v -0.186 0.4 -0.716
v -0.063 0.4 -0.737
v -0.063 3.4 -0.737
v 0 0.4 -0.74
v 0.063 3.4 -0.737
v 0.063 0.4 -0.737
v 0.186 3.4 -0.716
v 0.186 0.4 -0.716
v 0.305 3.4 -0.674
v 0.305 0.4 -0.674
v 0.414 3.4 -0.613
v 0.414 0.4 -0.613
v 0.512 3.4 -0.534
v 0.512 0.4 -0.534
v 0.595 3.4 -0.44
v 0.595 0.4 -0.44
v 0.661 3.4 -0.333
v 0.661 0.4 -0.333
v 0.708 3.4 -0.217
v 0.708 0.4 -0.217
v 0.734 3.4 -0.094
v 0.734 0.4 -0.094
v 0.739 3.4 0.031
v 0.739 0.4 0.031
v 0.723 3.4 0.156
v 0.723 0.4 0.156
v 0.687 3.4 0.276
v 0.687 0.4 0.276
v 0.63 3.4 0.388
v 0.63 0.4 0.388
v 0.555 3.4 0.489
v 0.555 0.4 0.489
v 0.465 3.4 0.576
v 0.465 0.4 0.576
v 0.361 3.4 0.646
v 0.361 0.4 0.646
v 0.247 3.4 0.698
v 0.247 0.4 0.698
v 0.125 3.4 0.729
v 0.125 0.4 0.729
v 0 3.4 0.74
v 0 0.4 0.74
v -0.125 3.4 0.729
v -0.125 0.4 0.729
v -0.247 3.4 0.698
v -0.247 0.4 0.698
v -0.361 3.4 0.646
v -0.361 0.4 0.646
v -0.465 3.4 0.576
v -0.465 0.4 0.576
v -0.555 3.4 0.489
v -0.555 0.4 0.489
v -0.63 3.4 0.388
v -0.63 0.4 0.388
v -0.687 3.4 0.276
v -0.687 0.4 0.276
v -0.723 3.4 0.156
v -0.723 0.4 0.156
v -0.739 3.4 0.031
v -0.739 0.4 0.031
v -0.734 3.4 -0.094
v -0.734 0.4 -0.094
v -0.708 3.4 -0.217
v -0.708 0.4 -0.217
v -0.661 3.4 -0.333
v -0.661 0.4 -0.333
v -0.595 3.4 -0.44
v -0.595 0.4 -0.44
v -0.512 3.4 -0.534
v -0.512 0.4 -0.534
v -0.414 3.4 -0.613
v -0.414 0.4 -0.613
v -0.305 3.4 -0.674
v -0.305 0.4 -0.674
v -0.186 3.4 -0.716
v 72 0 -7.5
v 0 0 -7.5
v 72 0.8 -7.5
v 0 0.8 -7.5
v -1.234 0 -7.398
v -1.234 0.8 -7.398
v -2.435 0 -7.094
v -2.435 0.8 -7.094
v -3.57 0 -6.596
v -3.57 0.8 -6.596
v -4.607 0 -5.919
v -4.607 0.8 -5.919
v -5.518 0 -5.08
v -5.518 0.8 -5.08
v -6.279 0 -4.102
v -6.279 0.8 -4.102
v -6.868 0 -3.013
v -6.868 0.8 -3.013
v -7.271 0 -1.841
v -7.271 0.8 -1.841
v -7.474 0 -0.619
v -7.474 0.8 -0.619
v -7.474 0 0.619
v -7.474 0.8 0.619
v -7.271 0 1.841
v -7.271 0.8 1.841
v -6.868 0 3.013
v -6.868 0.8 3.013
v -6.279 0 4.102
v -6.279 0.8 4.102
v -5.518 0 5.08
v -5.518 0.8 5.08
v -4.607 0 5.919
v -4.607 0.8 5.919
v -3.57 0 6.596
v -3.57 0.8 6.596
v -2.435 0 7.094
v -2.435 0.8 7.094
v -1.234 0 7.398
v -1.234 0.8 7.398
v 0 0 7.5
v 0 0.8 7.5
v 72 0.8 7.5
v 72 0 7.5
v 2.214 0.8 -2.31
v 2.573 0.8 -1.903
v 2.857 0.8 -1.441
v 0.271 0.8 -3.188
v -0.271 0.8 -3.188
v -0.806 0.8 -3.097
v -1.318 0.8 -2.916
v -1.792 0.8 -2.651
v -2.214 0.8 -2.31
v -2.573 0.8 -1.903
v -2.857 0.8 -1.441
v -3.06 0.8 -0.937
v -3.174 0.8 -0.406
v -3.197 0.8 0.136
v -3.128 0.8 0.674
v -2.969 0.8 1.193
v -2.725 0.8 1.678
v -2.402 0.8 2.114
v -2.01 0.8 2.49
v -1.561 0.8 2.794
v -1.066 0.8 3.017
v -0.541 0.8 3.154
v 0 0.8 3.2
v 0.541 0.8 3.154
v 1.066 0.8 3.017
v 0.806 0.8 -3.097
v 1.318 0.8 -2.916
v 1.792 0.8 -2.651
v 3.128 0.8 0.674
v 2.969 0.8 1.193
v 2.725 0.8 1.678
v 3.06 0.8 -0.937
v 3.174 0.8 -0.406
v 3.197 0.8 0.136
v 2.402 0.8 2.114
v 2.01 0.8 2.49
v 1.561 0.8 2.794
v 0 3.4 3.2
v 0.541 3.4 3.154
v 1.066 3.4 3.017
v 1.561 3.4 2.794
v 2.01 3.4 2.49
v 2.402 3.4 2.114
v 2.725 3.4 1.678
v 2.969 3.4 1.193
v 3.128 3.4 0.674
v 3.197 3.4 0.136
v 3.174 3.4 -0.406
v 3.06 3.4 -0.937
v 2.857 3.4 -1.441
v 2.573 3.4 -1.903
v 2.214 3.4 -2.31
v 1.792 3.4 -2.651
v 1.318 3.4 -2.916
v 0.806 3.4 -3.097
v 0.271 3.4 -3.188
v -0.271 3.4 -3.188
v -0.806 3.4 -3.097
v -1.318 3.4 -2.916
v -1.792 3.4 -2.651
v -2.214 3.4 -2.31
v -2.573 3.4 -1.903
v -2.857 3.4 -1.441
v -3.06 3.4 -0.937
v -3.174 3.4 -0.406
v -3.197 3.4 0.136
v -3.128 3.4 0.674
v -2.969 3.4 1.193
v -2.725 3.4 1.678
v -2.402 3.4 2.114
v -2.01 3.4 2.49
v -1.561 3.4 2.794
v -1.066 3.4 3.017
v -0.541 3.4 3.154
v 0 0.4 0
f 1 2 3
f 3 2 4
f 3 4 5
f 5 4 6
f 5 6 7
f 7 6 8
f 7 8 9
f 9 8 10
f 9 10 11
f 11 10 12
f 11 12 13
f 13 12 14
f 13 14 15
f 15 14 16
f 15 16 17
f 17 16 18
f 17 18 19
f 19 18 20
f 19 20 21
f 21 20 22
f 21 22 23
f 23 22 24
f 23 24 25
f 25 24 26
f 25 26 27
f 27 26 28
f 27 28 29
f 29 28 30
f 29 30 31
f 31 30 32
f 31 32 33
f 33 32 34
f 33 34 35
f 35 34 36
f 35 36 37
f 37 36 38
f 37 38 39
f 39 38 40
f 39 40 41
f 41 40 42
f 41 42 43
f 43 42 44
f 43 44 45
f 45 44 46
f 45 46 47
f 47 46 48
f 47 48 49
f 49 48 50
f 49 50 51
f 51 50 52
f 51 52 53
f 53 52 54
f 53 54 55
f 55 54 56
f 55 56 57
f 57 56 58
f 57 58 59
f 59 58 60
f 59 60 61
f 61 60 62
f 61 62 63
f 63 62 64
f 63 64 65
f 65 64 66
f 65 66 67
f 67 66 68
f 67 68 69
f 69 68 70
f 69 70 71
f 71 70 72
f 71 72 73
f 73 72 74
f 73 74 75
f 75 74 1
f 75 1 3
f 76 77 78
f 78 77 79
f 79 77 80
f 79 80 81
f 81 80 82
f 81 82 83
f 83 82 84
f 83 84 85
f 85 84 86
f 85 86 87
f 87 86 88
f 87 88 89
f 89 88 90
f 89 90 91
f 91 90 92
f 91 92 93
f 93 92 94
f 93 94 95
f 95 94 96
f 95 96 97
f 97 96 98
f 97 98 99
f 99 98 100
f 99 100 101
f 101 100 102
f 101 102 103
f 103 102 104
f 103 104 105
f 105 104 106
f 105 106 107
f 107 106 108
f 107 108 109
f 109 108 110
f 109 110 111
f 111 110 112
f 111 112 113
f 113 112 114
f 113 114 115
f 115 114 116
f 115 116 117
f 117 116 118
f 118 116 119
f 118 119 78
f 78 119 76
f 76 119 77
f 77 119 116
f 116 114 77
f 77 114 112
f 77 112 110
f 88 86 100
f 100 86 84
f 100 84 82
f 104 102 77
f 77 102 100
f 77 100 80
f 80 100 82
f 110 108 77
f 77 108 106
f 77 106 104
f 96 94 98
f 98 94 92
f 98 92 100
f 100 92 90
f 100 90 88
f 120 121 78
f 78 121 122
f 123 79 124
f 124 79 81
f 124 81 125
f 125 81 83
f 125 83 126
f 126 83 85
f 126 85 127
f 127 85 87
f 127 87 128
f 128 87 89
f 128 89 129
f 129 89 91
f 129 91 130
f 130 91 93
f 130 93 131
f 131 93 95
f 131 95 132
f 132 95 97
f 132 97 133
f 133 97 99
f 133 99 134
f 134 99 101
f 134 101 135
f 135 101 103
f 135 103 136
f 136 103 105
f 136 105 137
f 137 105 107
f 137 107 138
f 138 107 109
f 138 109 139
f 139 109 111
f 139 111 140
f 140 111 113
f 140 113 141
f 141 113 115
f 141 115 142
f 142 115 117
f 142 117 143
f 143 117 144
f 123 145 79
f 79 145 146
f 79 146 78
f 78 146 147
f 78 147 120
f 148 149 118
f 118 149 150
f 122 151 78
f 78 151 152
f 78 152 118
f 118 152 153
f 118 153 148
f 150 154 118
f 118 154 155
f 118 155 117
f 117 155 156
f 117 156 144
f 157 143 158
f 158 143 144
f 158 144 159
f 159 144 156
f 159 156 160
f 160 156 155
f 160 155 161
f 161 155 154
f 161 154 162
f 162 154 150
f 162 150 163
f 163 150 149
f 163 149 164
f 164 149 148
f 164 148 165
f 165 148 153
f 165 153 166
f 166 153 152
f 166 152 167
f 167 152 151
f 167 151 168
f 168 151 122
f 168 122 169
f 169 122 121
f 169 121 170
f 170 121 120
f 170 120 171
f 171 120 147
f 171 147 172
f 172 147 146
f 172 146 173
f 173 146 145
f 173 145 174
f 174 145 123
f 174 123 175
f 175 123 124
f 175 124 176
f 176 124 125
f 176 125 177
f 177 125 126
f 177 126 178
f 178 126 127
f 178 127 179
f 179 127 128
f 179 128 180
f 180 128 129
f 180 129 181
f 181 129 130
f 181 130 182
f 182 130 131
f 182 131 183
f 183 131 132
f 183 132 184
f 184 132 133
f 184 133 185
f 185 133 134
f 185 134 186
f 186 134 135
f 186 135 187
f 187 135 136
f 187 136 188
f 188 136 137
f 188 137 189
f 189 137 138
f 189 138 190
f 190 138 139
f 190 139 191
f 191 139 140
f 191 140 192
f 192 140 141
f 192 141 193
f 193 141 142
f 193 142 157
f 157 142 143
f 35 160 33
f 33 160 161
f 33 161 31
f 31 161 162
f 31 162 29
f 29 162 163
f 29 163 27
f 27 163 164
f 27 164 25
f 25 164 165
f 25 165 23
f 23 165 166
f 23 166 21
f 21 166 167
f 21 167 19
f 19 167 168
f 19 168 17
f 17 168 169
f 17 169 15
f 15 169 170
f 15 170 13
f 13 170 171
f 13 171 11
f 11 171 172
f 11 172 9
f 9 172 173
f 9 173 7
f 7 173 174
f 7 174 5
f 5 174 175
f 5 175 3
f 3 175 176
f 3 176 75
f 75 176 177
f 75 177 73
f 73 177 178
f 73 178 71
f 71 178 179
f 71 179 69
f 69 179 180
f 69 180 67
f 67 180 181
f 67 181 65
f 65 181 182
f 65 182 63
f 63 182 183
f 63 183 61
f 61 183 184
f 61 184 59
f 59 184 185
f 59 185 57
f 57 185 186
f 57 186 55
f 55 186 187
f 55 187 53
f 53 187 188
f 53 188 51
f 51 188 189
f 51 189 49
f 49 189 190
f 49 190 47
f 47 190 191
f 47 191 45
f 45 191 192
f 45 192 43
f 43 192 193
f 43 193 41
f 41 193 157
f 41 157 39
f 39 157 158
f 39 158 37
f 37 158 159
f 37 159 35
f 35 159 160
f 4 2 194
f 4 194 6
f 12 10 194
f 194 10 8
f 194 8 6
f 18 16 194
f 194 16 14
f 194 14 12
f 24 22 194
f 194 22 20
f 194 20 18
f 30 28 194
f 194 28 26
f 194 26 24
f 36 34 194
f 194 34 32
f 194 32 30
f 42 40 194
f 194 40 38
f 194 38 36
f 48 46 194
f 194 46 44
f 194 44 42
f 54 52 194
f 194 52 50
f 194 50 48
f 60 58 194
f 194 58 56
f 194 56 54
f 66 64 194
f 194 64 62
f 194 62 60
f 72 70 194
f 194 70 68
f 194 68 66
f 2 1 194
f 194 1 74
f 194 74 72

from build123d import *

# Parameters (mm, degrees)
BOSS_EXTRUDE1_DEPTH = 2
SKETCH2_R           = 0.74
CUT_EXTRUDE1_DEPTH  = 5.6
SKETCH6_W           = 79.5
SKETCH6_H           = 15
SKETCH6_R           = 3.2
CUT_EXTRUDE3_DEPTH  = 1.2
SKETCH7_R           = 3.2
SKETCH7_R_2         = 0.74
BOSS_EXTRUDE2_DEPTH = 1.4
SKETCH8_R           = 0.74
BOSS_EXTRUDE3_DEPTH = 0.4


with BuildPart() as part:
    # Sketch1 → Boss-Extrude1 (new body)
    with BuildSketch(Plane(origin=(0, 0, 0), x_dir=(1, 0, 0), z_dir=(0, 1, 0))):
        with BuildLine():
            ThreePointArc((7.5, 0), (5.303300859, -5.303300859), (0, -7.5))
            Line((0, -7.5), (72, -7.5))
            Line((72, -7.5), (72, 7.5))
            Line((72, 7.5), (0, 7.5))
            ThreePointArc((0, 7.5), (5.303300859, 5.303300859), (7.5, 0))
        make_face()
        with BuildLine():
            ThreePointArc((0, 7.5), (-7.5, 0), (0, -7.5))
            Line((0, -7.5), (0, 7.5))
        make_face()
        with BuildLine():
            Line((0, 7.5), (0, -7.5))
            ThreePointArc((0, -7.5), (5.303300859, -5.303300859), (7.5, 0))
            ThreePointArc((7.5, 0), (5.303300859, 5.303300859), (0, 7.5))
        make_face()
    extrude(amount=BOSS_EXTRUDE1_DEPTH)

    # Sketch2 → Cut-Extrude1 (cut)
    with BuildSketch(Plane(origin=(0, 2, 0), x_dir=(1, 0, 0), z_dir=(0, 1, 0))):
        Circle(SKETCH2_R)
    extrude(amount=-CUT_EXTRUDE1_DEPTH, mode=Mode.SUBTRACT)

    # Sketch6 → Cut-Extrude3 (cut)
    with BuildSketch(Plane(origin=(0, 2, 0), x_dir=(1, 0, 0), z_dir=(0, 1, 0))):
        with Locations((32.25, 0)):
            Rectangle(SKETCH6_W, SKETCH6_H)
        Circle(SKETCH6_R, mode=Mode.SUBTRACT)
    extrude(amount=-CUT_EXTRUDE3_DEPTH, mode=Mode.SUBTRACT)

    # Sketch7 → Boss-Extrude2 (add)
    with BuildSketch(Plane(origin=(0, 2, 0), x_dir=(1, 0, 0), z_dir=(0, 1, 0))):
        Circle(SKETCH7_R)
        Circle(SKETCH7_R_2, mode=Mode.SUBTRACT)
    extrude(amount=BOSS_EXTRUDE2_DEPTH)

    # Sketch8 → Boss-Extrude3 (add)
    with BuildSketch(Plane.XZ):
        Circle(SKETCH8_R)
    extrude(amount=-BOSS_EXTRUDE3_DEPTH)


solid = part.part
